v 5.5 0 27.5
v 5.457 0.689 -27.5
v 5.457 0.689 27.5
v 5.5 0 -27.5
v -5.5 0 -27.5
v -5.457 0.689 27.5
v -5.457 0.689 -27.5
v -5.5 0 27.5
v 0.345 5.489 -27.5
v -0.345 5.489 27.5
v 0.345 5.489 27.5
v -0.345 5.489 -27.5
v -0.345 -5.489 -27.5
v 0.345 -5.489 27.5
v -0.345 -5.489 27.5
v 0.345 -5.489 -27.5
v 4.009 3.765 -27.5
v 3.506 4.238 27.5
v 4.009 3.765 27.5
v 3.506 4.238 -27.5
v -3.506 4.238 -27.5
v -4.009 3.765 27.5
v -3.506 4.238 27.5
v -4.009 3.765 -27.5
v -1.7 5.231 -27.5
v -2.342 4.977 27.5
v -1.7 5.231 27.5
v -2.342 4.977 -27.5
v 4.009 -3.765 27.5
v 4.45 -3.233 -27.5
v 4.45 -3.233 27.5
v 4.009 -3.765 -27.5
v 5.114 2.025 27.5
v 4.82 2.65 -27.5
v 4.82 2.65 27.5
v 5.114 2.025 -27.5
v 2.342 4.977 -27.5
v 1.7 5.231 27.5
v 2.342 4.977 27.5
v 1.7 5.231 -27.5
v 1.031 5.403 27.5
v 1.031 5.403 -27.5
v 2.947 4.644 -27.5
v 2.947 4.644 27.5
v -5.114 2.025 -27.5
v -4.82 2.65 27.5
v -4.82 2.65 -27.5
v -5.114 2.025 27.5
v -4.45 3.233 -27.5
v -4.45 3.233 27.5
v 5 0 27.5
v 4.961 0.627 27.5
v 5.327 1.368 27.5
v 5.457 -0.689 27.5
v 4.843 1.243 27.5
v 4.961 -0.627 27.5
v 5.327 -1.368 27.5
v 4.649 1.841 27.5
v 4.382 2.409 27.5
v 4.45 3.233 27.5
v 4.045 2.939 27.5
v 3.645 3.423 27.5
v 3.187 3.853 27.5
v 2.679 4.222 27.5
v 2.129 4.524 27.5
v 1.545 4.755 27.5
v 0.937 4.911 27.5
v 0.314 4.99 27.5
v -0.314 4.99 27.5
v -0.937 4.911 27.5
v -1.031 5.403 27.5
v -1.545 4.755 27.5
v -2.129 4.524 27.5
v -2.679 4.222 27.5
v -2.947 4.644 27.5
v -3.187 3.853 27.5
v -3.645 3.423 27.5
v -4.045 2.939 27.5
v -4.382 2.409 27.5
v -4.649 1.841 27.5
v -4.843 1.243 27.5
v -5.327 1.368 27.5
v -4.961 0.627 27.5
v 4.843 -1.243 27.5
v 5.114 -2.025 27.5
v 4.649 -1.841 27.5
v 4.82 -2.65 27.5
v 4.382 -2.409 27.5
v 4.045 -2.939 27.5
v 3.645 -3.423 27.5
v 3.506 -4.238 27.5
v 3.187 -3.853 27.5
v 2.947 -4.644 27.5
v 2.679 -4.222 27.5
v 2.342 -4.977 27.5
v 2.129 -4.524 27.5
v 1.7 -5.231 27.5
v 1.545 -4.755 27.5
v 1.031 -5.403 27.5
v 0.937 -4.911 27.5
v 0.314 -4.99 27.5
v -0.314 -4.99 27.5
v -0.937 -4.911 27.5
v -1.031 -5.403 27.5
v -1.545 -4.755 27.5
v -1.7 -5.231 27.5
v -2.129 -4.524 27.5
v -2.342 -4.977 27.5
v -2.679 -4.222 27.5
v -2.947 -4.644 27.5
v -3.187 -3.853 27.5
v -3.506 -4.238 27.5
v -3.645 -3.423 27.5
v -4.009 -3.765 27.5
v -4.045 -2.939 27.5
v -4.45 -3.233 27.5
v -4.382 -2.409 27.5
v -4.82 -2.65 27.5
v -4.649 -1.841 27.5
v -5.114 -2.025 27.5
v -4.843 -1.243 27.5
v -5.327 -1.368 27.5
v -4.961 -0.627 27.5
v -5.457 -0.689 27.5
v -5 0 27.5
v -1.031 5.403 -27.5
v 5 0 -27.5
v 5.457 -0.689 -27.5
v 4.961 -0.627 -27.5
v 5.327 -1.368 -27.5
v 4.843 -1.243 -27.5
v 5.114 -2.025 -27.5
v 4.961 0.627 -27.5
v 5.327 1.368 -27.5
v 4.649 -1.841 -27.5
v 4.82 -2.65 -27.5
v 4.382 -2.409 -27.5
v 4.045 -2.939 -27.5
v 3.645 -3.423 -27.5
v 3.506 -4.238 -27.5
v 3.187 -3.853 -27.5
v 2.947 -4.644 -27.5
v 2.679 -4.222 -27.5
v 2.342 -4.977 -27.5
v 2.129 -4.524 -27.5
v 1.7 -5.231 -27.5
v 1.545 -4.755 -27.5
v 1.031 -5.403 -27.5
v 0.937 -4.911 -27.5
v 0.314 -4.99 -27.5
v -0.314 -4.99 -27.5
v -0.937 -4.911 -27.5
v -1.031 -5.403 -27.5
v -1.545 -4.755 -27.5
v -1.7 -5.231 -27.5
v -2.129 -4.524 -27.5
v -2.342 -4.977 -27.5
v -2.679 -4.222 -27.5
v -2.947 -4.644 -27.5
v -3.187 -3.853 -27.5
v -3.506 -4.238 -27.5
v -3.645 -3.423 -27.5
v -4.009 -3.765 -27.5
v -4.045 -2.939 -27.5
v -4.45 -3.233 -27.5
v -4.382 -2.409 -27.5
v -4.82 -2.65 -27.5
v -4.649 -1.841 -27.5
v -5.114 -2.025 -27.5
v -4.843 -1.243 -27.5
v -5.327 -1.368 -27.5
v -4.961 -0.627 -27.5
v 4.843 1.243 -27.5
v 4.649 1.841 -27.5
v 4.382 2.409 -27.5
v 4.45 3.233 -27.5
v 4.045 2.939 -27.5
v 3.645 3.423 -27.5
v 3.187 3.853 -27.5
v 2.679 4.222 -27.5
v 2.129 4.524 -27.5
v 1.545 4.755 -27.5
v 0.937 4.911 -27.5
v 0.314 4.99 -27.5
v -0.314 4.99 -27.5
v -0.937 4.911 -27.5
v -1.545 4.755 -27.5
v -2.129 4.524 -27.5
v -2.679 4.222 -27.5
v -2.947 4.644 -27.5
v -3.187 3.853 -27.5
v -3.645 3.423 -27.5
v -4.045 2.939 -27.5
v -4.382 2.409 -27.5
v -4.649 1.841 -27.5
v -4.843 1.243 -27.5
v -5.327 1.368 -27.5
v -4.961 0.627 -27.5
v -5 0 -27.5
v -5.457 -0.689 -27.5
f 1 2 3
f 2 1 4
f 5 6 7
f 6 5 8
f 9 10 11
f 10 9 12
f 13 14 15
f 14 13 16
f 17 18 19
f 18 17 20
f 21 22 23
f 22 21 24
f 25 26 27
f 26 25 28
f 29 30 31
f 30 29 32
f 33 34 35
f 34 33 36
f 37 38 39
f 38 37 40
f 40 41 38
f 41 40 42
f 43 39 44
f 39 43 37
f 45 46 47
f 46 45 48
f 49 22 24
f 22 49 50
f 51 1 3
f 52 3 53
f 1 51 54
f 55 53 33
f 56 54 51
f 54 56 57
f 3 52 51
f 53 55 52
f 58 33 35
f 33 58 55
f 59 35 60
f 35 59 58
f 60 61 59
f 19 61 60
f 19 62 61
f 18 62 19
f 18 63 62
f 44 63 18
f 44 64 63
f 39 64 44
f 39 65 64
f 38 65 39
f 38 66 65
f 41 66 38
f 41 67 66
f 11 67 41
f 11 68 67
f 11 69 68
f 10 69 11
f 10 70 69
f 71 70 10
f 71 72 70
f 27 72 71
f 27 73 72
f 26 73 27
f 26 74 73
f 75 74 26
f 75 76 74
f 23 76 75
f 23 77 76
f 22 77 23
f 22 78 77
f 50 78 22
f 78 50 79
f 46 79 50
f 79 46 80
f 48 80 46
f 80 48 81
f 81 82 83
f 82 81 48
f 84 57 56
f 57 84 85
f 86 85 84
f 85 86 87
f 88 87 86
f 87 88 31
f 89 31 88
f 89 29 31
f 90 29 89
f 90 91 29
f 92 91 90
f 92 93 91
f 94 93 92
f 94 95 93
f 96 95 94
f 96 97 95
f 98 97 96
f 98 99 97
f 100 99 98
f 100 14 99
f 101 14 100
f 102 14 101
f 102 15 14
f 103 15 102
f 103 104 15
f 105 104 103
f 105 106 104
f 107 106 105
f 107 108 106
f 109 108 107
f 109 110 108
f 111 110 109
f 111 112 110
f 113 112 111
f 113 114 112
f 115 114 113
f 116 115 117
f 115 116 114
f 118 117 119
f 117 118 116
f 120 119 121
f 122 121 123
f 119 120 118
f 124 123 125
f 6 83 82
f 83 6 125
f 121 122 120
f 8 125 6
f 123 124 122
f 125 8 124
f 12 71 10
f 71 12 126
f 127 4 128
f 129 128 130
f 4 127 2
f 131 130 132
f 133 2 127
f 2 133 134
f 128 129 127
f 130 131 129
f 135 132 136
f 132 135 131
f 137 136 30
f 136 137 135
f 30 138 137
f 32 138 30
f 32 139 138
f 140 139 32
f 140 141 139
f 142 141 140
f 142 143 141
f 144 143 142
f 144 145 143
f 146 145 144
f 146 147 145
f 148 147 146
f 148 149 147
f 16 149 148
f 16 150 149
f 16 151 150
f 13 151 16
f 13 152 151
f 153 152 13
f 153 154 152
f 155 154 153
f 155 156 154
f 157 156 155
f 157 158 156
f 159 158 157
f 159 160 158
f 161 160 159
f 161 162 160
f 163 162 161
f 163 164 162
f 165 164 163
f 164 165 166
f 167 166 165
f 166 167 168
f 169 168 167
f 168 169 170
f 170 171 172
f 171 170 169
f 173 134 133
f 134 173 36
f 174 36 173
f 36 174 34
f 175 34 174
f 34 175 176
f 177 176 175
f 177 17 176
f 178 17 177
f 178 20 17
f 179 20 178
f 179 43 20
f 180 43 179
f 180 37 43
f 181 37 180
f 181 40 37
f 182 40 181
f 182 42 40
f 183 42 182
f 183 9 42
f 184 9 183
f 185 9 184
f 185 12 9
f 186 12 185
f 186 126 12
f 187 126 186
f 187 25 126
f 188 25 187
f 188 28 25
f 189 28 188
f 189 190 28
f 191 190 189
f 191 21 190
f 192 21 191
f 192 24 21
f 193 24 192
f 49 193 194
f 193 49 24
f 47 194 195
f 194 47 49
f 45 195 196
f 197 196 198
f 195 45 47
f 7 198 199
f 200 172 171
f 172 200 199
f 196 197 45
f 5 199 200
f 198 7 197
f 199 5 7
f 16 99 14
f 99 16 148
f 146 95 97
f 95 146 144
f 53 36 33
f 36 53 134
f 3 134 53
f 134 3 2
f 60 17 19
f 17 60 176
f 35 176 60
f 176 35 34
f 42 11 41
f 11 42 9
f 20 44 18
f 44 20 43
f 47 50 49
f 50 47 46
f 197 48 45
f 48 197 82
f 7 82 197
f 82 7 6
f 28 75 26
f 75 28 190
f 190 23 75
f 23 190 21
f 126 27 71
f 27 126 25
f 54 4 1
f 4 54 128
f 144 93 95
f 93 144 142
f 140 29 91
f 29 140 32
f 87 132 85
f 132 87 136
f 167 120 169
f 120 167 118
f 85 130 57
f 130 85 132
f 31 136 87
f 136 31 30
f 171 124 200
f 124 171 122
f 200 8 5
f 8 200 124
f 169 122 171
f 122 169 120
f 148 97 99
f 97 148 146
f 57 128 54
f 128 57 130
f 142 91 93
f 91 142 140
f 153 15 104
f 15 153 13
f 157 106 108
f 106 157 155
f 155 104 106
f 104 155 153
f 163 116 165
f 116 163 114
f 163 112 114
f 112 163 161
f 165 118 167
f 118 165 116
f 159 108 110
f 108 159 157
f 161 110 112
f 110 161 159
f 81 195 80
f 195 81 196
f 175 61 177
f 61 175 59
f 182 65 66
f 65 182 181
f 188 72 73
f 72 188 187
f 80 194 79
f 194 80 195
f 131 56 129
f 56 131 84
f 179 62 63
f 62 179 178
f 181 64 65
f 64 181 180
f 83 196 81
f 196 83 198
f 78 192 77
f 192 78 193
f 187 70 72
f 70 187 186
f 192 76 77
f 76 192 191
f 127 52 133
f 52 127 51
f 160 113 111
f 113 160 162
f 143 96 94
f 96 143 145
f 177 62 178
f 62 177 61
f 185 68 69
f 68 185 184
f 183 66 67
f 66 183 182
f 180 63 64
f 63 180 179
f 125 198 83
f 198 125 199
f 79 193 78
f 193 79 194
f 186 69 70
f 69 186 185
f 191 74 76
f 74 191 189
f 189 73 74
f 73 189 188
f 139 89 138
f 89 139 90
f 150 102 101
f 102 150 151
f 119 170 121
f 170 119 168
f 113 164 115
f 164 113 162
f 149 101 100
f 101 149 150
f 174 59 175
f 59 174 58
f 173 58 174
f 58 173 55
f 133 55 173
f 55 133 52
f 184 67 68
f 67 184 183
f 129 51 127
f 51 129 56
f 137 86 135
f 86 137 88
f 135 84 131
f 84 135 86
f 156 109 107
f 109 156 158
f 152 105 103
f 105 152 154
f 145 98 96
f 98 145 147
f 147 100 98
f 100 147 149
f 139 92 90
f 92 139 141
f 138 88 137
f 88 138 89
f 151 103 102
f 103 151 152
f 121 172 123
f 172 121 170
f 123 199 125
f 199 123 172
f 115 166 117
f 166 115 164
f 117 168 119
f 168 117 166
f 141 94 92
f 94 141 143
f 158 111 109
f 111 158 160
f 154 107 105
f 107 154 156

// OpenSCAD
$fn = 50;


difference() {
	union() {
		translate(v = [0, 0, -27.5000000000]) {
			cylinder(h = 55, r = 5.5000000000);
		}
	}
	union() {
		translate(v = [0, 0, -100.0000000000]) {
			cylinder(h = 200, r = 5.0000000000);
		}
	}
}
